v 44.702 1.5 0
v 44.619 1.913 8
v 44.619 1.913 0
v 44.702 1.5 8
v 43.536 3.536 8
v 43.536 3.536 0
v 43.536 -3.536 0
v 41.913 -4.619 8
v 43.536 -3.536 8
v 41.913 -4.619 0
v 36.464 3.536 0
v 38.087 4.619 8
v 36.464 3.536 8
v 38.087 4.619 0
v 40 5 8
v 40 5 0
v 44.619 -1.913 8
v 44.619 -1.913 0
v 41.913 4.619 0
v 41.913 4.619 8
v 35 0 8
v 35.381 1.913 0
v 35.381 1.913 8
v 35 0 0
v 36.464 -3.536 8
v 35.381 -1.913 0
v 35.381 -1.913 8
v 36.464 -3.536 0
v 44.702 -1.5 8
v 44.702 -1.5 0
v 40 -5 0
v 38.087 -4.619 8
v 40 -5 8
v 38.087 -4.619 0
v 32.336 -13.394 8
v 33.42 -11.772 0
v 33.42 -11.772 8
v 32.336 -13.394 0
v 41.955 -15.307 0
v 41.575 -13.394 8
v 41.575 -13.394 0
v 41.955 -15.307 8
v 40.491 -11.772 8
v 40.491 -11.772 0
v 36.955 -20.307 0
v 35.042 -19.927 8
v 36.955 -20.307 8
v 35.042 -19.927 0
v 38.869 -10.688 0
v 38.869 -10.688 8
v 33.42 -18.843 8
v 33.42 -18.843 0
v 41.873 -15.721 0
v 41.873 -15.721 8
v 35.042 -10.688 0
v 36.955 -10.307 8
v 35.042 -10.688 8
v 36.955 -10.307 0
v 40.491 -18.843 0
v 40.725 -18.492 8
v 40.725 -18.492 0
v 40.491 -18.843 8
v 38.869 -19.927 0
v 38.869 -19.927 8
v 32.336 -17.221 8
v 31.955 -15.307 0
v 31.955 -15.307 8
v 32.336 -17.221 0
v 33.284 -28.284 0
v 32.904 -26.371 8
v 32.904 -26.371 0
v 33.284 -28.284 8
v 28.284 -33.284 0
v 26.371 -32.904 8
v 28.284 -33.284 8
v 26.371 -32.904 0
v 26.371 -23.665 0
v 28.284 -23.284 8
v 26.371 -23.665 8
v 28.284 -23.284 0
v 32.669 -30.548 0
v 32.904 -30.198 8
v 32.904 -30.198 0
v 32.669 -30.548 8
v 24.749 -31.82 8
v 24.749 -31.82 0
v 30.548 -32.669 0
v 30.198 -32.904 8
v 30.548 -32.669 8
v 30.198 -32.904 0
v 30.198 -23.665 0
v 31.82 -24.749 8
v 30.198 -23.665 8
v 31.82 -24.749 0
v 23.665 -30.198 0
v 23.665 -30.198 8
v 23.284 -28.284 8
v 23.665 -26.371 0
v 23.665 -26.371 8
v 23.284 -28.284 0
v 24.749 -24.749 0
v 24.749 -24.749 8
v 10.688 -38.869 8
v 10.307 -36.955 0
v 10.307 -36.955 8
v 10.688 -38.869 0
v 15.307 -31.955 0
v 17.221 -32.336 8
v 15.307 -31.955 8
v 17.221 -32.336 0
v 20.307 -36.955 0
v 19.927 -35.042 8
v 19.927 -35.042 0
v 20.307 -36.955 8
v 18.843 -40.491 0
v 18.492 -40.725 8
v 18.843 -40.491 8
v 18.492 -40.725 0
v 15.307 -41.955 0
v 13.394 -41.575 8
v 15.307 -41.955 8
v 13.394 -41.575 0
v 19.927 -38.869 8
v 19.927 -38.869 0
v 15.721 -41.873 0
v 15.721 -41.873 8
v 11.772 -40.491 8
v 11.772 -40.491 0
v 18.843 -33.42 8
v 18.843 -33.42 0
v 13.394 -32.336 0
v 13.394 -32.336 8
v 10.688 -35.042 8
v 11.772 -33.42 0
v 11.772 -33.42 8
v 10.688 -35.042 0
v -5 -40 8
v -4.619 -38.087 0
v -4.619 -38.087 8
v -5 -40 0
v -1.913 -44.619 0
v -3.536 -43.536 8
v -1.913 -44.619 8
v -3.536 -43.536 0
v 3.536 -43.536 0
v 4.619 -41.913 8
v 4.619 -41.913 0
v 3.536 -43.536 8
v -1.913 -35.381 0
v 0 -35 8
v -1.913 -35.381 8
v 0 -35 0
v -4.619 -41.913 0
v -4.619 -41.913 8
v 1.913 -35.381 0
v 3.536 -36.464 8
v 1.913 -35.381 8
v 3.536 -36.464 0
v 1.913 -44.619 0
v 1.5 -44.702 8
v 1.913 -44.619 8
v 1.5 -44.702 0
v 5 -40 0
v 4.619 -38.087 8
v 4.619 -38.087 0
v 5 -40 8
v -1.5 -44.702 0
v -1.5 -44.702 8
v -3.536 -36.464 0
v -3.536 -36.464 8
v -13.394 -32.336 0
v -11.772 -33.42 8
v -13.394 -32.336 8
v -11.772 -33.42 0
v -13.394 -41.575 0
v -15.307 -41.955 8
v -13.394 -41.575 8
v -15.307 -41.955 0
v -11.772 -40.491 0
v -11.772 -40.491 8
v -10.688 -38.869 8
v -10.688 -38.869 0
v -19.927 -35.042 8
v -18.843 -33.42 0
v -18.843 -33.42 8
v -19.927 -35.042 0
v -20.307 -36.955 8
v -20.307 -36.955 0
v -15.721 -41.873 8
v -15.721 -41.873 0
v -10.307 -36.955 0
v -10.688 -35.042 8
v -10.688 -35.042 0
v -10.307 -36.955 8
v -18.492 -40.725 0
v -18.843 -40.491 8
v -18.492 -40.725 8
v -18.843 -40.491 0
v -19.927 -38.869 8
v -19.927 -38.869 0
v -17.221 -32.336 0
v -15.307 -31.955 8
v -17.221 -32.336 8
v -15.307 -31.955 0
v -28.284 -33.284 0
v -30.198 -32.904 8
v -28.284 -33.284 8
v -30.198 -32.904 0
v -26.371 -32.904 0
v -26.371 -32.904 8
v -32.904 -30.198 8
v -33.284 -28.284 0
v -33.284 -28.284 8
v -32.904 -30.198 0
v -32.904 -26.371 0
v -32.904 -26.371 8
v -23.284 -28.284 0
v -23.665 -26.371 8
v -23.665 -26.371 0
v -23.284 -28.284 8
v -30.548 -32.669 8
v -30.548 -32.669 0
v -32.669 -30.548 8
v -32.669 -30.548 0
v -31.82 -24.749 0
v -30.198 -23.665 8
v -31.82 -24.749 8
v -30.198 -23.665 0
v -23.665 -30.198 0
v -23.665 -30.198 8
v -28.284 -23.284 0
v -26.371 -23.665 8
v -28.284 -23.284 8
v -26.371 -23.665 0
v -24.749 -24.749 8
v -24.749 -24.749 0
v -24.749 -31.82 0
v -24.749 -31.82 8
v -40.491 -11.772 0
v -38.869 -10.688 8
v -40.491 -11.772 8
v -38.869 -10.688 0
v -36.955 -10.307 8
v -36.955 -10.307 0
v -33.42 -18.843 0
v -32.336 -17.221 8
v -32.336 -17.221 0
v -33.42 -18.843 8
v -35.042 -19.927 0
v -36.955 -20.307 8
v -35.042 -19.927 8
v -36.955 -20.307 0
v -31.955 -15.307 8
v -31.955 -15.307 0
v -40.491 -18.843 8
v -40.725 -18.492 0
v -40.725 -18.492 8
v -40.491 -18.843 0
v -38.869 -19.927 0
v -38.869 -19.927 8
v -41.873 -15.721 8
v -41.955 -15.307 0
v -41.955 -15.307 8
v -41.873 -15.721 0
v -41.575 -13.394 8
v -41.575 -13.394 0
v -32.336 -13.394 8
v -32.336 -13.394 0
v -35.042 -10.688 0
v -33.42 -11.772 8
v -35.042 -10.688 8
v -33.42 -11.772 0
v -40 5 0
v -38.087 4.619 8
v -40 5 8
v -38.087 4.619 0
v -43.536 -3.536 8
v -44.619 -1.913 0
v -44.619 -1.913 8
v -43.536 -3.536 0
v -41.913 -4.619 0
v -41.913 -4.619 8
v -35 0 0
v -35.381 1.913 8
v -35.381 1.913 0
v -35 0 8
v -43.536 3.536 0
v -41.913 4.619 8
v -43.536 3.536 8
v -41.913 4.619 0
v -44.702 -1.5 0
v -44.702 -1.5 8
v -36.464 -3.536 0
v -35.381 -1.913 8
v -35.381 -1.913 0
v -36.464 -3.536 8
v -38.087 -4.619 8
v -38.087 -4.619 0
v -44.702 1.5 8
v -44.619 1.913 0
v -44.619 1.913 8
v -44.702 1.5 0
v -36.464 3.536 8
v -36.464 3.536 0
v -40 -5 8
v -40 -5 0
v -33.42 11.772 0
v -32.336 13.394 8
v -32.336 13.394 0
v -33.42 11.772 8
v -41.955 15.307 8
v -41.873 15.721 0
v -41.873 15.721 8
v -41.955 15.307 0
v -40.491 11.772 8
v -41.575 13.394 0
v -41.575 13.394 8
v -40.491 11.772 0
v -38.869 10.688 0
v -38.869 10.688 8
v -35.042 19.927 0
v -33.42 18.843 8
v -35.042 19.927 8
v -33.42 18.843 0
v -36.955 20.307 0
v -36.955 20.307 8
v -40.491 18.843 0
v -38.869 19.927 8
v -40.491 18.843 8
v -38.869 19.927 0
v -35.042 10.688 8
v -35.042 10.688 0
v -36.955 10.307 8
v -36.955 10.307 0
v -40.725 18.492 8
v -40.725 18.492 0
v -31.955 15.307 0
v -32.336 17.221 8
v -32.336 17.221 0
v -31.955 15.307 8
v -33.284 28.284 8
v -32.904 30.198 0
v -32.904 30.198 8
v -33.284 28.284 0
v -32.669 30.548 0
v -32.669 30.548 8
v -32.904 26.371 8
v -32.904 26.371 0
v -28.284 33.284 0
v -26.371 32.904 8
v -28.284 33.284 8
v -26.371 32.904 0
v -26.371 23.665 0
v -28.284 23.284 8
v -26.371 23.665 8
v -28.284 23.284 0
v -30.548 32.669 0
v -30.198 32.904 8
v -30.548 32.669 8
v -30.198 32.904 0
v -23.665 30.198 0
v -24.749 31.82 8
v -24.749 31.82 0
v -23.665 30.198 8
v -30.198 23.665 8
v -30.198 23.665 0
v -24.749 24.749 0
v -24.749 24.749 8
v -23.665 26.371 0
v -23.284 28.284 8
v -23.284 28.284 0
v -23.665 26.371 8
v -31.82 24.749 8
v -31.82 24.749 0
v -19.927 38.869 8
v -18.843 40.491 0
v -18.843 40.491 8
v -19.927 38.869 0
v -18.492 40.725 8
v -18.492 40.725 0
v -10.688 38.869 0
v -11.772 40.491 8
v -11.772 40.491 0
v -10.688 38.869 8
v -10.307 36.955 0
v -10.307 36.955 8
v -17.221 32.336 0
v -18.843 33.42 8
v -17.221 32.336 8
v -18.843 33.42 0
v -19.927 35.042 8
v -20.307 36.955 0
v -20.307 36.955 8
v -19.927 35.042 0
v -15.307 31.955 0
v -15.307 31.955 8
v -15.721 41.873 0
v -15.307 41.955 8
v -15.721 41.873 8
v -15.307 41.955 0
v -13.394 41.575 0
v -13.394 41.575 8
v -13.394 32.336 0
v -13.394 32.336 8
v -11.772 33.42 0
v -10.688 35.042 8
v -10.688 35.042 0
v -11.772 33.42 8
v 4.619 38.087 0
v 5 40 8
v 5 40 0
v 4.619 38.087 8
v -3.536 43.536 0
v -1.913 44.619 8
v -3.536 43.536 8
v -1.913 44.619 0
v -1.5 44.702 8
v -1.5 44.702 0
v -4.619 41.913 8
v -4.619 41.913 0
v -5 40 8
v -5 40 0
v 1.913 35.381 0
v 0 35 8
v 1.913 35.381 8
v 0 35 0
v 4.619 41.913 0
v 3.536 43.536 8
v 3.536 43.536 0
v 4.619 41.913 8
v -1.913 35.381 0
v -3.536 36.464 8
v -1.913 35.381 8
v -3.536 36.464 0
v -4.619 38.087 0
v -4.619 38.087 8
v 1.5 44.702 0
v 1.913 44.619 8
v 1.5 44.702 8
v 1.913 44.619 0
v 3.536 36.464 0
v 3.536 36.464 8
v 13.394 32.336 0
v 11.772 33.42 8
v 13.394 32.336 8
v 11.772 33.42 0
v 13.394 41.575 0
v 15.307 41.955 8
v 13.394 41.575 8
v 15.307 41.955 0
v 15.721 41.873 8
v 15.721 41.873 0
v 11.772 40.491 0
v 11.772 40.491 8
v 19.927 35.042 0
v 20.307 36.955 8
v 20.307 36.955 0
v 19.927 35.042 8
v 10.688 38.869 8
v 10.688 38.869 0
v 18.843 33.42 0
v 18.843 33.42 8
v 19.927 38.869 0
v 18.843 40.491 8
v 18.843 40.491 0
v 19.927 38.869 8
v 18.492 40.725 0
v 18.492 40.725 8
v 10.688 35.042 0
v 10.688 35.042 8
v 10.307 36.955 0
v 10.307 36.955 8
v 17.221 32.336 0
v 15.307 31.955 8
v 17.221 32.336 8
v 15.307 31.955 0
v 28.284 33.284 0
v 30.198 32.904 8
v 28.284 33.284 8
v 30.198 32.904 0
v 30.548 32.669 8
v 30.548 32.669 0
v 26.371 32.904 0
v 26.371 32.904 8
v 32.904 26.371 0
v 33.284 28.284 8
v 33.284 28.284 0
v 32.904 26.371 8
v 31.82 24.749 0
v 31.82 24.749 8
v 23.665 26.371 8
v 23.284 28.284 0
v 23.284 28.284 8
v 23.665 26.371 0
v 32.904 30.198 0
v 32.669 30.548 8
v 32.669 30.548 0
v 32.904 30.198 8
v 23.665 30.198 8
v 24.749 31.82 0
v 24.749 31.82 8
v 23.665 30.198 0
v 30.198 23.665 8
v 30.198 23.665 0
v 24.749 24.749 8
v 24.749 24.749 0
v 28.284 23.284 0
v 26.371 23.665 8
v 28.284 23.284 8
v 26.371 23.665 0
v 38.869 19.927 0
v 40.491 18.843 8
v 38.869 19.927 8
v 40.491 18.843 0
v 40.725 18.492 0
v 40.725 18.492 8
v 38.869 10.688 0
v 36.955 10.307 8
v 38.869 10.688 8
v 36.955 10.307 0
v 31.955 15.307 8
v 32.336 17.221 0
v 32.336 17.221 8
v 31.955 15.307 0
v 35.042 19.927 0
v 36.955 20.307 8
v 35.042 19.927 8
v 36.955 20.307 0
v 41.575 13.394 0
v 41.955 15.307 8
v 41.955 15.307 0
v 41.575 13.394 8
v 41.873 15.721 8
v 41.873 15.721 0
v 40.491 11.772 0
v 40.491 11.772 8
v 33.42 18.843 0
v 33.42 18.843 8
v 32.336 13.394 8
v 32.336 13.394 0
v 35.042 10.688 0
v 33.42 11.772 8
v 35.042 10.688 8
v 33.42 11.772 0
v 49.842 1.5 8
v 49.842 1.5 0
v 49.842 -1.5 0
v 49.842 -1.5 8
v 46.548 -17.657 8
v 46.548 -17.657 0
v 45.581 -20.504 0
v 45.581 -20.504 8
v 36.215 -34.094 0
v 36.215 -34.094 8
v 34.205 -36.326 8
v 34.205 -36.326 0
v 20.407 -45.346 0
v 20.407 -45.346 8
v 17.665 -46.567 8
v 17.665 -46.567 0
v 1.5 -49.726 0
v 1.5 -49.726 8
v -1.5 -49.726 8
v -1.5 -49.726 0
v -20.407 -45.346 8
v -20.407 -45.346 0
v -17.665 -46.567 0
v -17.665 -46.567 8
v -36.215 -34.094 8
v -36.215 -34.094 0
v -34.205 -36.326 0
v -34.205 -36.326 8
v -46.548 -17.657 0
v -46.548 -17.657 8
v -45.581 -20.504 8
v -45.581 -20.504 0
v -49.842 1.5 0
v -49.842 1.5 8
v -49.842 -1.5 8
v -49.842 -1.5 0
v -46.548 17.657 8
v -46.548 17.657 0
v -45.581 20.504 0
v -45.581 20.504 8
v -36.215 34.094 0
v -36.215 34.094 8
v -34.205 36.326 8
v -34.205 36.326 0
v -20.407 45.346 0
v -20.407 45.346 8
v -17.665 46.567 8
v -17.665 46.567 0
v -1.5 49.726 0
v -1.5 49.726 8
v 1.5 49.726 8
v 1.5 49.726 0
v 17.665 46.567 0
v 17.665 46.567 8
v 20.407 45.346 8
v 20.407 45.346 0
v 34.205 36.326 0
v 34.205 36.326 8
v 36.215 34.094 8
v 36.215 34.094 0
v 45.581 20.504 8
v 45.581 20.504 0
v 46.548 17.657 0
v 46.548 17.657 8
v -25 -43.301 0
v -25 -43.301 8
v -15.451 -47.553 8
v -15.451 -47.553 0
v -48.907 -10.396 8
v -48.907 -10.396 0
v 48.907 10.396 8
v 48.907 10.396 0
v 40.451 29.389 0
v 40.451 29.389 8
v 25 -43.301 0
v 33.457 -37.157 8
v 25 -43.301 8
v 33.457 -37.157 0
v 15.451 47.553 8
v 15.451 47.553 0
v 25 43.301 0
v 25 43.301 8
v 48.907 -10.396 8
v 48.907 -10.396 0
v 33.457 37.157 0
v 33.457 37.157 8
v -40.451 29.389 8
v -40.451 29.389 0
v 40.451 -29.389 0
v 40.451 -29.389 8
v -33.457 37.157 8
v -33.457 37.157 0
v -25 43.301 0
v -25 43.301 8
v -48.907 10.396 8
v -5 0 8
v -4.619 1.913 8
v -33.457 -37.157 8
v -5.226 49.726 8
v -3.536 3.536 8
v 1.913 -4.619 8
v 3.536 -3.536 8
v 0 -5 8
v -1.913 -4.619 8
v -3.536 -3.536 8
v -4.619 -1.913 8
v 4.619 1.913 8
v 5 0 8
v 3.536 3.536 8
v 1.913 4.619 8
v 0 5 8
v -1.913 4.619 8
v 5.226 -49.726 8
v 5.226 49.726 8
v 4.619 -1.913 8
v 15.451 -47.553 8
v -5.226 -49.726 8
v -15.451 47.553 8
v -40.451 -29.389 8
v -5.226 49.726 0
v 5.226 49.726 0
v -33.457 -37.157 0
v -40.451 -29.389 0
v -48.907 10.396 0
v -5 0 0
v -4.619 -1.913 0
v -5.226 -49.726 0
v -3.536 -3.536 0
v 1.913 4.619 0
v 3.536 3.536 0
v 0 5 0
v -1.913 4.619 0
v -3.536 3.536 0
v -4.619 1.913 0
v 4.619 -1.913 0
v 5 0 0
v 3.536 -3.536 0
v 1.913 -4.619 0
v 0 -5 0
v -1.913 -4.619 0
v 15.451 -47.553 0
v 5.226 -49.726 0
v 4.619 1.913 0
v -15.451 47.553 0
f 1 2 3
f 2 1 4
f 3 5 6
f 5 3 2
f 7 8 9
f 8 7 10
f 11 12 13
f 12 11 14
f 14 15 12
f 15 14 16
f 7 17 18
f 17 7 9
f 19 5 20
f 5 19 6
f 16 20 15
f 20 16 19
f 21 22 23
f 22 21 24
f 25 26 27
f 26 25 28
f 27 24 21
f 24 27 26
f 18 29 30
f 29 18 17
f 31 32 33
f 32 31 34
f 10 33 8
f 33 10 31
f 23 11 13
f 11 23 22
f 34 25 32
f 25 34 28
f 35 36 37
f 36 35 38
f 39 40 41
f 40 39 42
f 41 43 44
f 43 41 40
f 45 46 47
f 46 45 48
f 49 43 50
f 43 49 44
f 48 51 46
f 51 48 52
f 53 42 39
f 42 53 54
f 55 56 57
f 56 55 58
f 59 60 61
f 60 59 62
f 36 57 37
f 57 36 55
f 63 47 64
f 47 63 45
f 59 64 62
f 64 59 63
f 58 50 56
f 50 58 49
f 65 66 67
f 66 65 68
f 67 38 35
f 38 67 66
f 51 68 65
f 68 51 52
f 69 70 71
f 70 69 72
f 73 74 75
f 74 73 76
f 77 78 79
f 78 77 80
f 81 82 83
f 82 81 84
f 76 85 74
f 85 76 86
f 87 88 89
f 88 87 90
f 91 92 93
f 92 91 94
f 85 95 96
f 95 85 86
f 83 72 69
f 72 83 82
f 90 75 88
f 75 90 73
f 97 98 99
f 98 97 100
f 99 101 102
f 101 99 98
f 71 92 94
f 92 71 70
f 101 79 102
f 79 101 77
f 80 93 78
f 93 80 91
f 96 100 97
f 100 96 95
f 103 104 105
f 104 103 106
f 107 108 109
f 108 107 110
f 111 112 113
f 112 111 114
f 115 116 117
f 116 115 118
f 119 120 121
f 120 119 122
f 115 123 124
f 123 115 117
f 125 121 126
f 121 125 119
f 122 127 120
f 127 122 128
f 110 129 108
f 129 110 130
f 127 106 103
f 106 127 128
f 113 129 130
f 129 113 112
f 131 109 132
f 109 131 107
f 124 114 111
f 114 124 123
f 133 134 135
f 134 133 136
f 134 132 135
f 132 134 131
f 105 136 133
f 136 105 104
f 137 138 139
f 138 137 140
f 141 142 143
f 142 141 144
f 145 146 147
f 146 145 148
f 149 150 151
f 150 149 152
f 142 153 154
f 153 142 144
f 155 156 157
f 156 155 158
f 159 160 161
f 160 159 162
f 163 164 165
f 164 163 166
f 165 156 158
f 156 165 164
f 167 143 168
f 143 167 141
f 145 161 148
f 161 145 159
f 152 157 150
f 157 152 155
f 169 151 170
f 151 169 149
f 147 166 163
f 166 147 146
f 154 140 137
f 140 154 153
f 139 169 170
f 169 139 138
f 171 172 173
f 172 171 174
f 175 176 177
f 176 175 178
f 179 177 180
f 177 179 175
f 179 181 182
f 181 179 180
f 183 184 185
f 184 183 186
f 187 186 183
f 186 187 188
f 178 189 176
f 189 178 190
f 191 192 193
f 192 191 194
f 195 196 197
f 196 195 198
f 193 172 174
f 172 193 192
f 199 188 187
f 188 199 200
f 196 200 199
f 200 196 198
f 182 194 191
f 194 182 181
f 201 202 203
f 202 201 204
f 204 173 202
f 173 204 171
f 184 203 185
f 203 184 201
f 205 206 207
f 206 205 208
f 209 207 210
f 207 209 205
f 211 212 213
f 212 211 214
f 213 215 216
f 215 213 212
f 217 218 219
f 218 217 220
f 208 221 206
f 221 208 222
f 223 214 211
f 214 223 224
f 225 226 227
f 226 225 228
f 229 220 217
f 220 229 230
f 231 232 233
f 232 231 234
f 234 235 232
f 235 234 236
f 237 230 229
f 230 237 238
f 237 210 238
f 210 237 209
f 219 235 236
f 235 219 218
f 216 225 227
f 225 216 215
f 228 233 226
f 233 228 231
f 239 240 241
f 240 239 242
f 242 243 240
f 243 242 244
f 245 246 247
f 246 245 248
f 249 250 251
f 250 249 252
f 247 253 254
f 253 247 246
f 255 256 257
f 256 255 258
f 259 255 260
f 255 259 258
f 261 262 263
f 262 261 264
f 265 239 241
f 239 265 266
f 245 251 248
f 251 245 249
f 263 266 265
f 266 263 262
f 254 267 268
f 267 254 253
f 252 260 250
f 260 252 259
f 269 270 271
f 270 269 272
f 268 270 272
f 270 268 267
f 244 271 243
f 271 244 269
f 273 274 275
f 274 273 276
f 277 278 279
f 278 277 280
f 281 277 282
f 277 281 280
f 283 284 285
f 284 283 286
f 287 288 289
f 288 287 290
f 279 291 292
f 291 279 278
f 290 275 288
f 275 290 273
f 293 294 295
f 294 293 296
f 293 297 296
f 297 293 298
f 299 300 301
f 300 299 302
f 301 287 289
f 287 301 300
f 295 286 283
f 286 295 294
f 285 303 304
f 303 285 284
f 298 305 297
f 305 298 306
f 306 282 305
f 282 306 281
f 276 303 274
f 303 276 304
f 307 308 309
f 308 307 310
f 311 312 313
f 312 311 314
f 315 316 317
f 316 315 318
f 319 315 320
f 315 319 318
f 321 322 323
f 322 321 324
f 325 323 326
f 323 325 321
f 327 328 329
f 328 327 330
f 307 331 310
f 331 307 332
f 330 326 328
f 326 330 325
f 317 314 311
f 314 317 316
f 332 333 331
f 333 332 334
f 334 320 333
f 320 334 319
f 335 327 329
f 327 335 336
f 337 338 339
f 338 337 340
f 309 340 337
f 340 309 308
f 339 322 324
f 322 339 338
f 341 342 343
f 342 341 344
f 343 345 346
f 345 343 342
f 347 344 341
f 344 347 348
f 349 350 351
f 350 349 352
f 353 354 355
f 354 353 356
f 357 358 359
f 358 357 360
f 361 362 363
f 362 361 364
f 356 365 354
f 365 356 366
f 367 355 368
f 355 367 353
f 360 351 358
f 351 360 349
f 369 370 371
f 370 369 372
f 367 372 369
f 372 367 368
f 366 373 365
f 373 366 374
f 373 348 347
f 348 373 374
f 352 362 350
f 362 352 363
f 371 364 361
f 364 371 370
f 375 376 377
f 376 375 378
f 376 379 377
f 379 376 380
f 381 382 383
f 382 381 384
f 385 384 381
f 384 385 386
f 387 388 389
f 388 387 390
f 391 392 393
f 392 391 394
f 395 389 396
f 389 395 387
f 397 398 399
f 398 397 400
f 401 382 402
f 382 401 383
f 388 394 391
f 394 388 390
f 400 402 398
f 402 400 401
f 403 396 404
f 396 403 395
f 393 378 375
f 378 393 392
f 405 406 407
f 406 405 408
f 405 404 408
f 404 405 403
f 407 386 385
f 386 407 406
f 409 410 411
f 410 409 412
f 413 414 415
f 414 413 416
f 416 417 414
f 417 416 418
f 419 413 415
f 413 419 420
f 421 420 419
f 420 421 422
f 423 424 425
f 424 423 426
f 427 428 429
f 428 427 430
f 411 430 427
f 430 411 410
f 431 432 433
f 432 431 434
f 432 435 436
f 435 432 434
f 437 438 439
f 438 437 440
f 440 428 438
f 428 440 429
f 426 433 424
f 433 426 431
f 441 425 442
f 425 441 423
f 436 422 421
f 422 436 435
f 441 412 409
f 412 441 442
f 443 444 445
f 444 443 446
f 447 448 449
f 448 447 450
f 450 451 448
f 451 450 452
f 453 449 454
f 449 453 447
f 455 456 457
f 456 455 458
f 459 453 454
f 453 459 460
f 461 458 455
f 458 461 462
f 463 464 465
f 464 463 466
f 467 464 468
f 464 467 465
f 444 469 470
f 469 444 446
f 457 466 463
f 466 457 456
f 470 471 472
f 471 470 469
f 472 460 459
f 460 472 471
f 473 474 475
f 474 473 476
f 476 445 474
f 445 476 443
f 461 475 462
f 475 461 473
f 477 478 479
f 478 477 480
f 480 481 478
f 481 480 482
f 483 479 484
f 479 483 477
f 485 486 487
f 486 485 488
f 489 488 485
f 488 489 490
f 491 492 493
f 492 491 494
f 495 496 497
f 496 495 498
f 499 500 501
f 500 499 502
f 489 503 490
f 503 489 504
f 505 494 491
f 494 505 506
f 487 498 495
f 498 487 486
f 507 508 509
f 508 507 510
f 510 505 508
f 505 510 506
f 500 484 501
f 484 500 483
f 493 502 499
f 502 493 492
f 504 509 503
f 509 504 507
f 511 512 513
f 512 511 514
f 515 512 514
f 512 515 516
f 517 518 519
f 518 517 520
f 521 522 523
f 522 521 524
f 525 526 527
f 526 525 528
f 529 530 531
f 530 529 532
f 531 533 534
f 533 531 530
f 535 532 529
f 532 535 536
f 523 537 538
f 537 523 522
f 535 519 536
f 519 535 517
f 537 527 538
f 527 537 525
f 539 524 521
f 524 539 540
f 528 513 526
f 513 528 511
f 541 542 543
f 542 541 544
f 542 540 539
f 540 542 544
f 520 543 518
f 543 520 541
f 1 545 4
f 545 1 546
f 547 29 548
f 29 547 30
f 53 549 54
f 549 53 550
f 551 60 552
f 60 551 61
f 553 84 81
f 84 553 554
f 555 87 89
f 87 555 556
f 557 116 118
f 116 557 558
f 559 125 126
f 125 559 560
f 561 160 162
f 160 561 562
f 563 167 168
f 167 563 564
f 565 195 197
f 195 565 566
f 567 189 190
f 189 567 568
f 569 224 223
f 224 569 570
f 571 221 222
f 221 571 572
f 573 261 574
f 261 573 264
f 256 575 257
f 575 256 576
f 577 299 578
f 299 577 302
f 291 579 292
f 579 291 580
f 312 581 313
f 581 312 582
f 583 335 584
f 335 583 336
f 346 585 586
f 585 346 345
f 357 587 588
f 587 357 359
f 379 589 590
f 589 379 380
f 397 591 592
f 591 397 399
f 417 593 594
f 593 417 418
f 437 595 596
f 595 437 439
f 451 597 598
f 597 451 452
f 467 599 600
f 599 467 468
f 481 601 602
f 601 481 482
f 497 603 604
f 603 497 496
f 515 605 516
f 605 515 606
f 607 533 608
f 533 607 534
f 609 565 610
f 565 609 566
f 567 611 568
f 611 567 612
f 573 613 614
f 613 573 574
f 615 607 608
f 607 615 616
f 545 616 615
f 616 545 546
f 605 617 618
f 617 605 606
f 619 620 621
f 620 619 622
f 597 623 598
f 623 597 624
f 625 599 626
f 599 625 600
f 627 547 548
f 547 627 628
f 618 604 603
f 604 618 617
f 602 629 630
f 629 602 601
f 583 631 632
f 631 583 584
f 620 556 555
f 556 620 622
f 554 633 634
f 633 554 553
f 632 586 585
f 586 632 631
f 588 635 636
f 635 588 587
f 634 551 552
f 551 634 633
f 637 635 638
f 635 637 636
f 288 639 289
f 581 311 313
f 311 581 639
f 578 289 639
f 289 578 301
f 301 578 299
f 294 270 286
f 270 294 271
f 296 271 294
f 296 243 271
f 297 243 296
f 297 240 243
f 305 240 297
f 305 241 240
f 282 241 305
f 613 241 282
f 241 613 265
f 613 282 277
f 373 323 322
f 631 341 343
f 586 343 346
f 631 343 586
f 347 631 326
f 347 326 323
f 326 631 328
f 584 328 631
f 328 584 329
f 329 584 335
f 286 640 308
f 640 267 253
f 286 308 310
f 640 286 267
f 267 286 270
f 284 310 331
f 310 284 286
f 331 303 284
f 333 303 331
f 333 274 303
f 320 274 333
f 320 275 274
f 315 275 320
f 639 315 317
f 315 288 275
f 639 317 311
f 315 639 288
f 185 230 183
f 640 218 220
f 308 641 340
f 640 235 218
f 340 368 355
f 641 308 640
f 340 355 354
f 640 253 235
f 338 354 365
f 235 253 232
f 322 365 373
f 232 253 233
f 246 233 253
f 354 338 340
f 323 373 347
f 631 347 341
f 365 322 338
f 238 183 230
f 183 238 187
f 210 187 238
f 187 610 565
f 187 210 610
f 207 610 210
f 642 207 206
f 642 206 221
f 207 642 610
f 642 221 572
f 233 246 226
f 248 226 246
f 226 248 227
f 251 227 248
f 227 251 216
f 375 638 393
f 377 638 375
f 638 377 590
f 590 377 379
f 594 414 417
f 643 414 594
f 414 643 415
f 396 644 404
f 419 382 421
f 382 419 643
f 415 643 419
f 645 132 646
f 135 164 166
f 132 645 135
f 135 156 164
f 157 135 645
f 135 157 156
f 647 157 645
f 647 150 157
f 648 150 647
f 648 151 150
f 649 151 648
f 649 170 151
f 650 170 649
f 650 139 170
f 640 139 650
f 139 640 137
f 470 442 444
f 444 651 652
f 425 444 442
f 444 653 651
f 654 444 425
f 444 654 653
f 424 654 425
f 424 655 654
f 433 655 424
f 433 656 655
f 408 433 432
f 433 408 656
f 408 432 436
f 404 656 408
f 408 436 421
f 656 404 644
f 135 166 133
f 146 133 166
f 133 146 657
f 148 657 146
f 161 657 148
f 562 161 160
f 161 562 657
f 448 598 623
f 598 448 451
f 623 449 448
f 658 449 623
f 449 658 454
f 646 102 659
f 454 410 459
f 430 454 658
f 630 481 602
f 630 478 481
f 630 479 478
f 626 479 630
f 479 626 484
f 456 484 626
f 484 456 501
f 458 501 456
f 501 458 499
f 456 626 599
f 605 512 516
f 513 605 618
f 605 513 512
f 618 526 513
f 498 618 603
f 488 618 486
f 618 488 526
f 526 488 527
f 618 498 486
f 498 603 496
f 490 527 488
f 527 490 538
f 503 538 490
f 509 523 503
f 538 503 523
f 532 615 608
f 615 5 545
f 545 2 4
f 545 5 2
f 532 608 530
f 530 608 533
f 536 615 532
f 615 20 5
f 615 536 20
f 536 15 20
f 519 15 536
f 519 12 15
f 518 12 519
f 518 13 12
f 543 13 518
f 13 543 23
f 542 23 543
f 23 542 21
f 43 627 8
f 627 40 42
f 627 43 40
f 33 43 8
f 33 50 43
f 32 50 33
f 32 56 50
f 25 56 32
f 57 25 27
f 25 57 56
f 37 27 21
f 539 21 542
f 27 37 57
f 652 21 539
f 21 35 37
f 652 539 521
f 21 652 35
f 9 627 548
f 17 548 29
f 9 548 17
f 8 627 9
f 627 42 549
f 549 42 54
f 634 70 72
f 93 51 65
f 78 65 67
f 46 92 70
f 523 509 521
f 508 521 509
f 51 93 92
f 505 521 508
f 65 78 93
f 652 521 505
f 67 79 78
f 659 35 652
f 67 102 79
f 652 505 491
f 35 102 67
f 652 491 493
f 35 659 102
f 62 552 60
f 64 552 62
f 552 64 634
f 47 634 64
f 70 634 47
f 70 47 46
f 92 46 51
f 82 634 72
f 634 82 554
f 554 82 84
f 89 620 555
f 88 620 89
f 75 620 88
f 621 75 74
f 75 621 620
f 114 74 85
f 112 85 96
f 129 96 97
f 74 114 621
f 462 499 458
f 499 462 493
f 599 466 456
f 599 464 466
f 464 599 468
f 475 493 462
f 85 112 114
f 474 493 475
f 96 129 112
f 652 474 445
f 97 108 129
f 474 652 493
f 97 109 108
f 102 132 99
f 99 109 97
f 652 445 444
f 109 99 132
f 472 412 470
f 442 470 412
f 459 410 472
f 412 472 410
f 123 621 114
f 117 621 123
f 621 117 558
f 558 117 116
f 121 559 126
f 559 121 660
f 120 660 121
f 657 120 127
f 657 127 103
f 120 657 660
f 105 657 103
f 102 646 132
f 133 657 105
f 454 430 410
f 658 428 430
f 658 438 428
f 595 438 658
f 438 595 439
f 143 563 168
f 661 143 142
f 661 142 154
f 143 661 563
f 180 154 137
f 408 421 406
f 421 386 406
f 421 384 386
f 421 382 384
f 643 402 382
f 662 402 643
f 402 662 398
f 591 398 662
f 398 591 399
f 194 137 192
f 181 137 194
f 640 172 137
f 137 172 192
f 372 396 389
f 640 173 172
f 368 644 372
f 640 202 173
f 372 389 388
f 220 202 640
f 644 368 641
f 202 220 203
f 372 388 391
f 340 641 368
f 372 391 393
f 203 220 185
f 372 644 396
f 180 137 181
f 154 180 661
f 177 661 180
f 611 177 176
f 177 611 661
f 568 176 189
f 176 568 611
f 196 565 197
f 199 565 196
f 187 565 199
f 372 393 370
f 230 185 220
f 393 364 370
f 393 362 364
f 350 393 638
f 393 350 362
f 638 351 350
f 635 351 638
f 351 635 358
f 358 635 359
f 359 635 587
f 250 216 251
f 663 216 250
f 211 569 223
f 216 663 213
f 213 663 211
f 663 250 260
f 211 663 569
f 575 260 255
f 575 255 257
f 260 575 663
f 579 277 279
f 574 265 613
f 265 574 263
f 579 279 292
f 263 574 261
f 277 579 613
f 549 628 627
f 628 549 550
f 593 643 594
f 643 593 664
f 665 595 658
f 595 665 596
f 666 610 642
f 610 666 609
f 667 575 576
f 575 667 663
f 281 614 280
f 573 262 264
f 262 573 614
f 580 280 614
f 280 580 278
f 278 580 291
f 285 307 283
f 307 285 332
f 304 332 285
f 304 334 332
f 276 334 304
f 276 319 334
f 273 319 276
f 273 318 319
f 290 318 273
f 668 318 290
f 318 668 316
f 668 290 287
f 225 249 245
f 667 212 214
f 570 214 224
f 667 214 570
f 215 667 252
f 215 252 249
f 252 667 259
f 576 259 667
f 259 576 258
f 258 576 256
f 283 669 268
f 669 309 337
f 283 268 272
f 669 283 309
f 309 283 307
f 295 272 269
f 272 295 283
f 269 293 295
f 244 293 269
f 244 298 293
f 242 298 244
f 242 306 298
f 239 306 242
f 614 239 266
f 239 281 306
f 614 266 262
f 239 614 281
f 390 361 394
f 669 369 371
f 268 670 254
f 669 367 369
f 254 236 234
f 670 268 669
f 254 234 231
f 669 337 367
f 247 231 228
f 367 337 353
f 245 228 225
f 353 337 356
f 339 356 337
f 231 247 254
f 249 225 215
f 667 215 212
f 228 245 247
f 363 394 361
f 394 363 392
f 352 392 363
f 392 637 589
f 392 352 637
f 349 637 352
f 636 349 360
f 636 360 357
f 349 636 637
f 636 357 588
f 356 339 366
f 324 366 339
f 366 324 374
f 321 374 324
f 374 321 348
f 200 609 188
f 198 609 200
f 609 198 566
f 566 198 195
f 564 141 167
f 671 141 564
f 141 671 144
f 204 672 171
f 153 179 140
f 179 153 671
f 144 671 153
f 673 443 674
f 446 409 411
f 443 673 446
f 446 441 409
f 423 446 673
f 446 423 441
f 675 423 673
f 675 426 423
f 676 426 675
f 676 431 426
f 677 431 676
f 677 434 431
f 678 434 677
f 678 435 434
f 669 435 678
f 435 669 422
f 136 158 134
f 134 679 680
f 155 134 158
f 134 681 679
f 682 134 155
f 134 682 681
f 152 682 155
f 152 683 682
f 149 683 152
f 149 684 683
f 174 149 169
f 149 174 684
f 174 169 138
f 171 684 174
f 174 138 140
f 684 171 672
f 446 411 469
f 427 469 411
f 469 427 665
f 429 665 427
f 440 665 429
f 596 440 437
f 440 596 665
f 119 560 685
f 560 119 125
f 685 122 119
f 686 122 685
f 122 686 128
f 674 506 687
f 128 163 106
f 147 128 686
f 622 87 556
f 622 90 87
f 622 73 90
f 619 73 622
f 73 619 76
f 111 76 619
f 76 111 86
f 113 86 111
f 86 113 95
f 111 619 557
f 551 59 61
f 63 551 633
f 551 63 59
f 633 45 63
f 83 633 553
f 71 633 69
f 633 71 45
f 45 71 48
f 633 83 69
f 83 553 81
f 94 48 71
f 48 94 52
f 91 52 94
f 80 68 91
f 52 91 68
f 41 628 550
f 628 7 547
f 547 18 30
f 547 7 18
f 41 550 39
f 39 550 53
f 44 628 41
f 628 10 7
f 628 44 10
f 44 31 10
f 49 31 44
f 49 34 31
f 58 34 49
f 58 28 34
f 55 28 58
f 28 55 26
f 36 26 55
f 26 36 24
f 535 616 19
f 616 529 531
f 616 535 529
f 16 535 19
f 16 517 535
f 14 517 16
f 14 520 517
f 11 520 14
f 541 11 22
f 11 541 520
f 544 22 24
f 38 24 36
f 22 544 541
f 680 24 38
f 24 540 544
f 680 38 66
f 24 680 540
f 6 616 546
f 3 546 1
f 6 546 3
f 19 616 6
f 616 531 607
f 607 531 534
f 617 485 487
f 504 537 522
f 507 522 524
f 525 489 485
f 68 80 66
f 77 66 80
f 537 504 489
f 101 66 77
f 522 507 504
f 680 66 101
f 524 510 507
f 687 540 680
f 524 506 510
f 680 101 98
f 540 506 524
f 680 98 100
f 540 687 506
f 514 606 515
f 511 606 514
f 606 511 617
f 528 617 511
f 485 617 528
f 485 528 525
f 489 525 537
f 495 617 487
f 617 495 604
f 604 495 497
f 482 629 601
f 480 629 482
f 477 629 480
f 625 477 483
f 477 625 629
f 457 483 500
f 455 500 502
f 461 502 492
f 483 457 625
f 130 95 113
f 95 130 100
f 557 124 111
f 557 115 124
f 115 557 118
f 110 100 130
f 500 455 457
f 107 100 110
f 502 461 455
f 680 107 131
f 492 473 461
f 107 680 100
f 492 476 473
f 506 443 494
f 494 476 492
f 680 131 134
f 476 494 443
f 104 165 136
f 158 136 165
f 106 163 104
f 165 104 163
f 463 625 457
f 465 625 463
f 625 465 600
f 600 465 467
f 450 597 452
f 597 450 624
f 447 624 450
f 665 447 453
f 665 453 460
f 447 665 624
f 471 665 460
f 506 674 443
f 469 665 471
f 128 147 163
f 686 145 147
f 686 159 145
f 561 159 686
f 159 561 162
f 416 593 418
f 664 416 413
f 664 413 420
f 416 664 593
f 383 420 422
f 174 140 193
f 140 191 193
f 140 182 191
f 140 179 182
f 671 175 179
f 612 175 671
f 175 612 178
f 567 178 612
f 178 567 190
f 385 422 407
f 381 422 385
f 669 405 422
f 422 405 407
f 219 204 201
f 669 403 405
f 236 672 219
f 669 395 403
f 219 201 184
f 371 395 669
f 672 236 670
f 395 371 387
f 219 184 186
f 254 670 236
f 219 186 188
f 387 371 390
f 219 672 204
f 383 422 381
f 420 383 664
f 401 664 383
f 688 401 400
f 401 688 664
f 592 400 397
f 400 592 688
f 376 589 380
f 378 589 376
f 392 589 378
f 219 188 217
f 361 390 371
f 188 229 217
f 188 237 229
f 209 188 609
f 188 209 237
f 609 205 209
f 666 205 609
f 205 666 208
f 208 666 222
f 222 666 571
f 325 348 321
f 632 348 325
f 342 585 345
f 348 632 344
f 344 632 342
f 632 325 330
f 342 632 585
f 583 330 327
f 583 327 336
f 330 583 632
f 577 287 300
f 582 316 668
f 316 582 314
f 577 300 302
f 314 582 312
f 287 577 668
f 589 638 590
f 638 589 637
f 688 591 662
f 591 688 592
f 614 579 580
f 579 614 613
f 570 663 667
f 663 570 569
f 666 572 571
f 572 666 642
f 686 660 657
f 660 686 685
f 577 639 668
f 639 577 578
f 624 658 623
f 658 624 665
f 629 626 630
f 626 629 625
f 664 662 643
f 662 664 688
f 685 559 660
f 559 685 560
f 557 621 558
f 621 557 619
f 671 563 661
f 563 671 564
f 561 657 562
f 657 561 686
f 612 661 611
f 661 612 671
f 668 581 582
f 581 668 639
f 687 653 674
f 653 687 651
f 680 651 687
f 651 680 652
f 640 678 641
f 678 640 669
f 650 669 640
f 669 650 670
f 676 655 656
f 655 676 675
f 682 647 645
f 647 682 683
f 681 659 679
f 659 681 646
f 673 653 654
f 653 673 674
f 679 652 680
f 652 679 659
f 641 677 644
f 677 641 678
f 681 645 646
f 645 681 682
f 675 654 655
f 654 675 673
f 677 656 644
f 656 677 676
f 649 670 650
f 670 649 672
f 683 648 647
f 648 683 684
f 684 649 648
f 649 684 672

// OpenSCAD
nbHoles=16;
diameter=10;
slit=3;

fullSize=100;
padding=5;
thickness=8;

translation=fullSize/2-padding-diameter/2;

difference() {
	cylinder(d=fullSize, h=thickness);
	translate([0,0,-0.005]) cylinder(d=10, h=30);
	for (i =  [0 : 1 : nbHoles]) {
	    rotate([0,0,-i/nbHoles*360]) 
	    	translate([translation,0, -0.005 ])
	    		cylinder(h = 30, d=diameter);
	}
	for (i =  [0 : 1 : nbHoles]) {
	    rotate([0,0,-i/nbHoles*360]) 
	    	translate ([translation+diameter/2+padding/2-1,0,-0.005]) cube([padding+2,slit,60],center=true);
	}
}
